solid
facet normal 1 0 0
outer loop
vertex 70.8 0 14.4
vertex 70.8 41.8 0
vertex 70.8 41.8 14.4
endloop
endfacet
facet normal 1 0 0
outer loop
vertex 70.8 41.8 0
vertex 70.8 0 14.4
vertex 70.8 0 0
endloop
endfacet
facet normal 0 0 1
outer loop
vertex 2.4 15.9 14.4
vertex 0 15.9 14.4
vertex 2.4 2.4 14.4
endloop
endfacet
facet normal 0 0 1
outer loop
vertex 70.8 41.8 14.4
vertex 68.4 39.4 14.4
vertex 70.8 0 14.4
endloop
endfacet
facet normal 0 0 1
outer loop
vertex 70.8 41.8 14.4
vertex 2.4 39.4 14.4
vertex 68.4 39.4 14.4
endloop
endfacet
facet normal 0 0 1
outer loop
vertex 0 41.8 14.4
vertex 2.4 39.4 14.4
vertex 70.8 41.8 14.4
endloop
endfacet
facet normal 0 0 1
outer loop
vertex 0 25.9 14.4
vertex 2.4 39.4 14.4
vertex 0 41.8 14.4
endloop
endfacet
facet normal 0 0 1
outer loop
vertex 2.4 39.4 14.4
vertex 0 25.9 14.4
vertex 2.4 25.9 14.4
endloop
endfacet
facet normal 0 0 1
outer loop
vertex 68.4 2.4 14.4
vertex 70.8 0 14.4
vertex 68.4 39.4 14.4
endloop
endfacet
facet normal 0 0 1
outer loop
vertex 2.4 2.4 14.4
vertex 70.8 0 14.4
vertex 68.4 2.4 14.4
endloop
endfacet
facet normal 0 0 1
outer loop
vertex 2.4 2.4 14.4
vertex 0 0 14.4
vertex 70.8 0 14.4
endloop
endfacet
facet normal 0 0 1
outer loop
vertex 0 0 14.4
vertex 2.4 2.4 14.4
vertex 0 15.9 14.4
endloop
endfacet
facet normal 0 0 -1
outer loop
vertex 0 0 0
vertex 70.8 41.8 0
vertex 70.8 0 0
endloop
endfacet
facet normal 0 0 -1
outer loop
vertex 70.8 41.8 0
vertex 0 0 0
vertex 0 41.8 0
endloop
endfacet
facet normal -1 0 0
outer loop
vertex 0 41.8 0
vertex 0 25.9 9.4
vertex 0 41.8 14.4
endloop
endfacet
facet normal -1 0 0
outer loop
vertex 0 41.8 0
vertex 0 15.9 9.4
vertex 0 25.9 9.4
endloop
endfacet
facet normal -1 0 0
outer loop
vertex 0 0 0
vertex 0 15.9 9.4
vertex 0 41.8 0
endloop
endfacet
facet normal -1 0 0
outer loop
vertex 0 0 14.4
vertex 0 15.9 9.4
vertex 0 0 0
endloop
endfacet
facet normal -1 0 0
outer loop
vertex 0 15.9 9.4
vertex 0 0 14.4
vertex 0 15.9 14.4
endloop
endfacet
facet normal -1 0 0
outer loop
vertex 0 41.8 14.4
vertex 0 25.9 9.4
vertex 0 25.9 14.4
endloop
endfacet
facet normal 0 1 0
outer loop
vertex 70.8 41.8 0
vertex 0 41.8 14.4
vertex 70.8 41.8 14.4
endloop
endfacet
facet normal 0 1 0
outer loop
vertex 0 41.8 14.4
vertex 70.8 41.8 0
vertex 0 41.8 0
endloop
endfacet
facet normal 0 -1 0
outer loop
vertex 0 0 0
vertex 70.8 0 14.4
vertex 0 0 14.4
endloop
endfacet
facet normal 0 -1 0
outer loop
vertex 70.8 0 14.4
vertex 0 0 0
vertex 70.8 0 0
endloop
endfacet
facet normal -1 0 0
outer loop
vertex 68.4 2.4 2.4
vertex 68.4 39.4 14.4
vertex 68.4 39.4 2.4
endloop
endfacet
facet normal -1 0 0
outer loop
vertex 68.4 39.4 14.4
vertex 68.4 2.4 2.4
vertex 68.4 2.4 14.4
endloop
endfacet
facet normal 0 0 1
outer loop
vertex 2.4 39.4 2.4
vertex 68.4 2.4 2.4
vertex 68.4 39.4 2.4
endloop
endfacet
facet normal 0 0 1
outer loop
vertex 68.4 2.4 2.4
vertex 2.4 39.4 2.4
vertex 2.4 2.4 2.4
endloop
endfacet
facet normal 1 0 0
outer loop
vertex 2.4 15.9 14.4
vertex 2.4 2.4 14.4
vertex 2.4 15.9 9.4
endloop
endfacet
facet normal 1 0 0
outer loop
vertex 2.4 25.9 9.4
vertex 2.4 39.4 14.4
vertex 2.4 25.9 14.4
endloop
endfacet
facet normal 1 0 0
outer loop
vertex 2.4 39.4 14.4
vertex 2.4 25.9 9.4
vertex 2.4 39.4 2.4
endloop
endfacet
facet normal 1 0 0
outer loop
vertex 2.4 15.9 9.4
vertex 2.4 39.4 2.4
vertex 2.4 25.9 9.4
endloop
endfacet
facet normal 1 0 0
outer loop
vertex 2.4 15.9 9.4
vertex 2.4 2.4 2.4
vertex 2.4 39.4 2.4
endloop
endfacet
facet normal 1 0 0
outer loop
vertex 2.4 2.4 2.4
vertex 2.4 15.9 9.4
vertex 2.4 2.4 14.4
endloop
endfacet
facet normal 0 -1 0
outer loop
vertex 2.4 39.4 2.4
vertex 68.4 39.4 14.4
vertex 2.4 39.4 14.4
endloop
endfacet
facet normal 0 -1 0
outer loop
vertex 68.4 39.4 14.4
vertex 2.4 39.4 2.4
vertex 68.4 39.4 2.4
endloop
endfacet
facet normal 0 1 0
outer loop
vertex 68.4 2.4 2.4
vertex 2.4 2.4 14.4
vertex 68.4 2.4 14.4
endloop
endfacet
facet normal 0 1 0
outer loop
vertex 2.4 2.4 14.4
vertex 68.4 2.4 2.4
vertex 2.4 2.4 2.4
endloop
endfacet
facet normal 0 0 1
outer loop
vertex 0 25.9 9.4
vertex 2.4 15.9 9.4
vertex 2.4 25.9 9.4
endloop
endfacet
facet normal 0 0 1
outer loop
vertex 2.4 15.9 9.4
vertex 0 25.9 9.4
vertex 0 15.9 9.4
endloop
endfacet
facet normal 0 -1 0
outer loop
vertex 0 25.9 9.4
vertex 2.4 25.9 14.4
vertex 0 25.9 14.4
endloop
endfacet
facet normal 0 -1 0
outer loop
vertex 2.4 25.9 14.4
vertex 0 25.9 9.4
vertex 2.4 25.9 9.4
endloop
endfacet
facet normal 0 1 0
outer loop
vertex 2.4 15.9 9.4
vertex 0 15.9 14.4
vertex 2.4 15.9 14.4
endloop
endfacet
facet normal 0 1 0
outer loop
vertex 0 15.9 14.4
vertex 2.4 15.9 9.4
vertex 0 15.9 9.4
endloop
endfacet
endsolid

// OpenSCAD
// SPDX-License-Identifier: CERN-OHL-P-2.0
// McGruber M3D-002 - open electronics tray (DIGITAL CONCEPT ONLY)
// All dimensions are example values in millimeters, NOT measured hardware.
// Use only for low-voltage, supervised prototype storage; not a rated case.
inner_length = 65;
inner_width = 36;
inner_height = 12;
clearance_per_side = 0.5;
wall = 2.4;
floor_thickness = 2.4;
cable_notch_width = 10;
cable_notch_depth = 5;

assert(inner_length >= 10 && inner_width >= 10 && inner_height >= 5);
assert(clearance_per_side >= 0 && clearance_per_side <= 2);
assert(wall >= 1.6 && floor_thickness >= 1.6);
assert(cable_notch_width > 0 && cable_notch_width < inner_width);
assert(cable_notch_depth > 0 && cable_notch_depth < inner_height);

outer_length = inner_length + 2 * (wall + clearance_per_side);
outer_width = inner_width + 2 * (wall + clearance_per_side);
outer_height = floor_thickness + inner_height;

difference() {
    cube([outer_length, outer_width, outer_height]);
    // The inside is open at the top; this is NOT a weatherproof enclosure.
    translate([wall, wall, floor_thickness])
        cube([inner_length + 2 * clearance_per_side,
              inner_width + 2 * clearance_per_side,
              inner_height + 0.2]);
    // Shallow cable route in the front wall, not a connector-specific cutout.
    translate([-0.1, (outer_width - cable_notch_width) / 2,
               outer_height - cable_notch_depth])
        cube([wall + 0.2, cable_notch_width, cable_notch_depth + 0.2]);
}
